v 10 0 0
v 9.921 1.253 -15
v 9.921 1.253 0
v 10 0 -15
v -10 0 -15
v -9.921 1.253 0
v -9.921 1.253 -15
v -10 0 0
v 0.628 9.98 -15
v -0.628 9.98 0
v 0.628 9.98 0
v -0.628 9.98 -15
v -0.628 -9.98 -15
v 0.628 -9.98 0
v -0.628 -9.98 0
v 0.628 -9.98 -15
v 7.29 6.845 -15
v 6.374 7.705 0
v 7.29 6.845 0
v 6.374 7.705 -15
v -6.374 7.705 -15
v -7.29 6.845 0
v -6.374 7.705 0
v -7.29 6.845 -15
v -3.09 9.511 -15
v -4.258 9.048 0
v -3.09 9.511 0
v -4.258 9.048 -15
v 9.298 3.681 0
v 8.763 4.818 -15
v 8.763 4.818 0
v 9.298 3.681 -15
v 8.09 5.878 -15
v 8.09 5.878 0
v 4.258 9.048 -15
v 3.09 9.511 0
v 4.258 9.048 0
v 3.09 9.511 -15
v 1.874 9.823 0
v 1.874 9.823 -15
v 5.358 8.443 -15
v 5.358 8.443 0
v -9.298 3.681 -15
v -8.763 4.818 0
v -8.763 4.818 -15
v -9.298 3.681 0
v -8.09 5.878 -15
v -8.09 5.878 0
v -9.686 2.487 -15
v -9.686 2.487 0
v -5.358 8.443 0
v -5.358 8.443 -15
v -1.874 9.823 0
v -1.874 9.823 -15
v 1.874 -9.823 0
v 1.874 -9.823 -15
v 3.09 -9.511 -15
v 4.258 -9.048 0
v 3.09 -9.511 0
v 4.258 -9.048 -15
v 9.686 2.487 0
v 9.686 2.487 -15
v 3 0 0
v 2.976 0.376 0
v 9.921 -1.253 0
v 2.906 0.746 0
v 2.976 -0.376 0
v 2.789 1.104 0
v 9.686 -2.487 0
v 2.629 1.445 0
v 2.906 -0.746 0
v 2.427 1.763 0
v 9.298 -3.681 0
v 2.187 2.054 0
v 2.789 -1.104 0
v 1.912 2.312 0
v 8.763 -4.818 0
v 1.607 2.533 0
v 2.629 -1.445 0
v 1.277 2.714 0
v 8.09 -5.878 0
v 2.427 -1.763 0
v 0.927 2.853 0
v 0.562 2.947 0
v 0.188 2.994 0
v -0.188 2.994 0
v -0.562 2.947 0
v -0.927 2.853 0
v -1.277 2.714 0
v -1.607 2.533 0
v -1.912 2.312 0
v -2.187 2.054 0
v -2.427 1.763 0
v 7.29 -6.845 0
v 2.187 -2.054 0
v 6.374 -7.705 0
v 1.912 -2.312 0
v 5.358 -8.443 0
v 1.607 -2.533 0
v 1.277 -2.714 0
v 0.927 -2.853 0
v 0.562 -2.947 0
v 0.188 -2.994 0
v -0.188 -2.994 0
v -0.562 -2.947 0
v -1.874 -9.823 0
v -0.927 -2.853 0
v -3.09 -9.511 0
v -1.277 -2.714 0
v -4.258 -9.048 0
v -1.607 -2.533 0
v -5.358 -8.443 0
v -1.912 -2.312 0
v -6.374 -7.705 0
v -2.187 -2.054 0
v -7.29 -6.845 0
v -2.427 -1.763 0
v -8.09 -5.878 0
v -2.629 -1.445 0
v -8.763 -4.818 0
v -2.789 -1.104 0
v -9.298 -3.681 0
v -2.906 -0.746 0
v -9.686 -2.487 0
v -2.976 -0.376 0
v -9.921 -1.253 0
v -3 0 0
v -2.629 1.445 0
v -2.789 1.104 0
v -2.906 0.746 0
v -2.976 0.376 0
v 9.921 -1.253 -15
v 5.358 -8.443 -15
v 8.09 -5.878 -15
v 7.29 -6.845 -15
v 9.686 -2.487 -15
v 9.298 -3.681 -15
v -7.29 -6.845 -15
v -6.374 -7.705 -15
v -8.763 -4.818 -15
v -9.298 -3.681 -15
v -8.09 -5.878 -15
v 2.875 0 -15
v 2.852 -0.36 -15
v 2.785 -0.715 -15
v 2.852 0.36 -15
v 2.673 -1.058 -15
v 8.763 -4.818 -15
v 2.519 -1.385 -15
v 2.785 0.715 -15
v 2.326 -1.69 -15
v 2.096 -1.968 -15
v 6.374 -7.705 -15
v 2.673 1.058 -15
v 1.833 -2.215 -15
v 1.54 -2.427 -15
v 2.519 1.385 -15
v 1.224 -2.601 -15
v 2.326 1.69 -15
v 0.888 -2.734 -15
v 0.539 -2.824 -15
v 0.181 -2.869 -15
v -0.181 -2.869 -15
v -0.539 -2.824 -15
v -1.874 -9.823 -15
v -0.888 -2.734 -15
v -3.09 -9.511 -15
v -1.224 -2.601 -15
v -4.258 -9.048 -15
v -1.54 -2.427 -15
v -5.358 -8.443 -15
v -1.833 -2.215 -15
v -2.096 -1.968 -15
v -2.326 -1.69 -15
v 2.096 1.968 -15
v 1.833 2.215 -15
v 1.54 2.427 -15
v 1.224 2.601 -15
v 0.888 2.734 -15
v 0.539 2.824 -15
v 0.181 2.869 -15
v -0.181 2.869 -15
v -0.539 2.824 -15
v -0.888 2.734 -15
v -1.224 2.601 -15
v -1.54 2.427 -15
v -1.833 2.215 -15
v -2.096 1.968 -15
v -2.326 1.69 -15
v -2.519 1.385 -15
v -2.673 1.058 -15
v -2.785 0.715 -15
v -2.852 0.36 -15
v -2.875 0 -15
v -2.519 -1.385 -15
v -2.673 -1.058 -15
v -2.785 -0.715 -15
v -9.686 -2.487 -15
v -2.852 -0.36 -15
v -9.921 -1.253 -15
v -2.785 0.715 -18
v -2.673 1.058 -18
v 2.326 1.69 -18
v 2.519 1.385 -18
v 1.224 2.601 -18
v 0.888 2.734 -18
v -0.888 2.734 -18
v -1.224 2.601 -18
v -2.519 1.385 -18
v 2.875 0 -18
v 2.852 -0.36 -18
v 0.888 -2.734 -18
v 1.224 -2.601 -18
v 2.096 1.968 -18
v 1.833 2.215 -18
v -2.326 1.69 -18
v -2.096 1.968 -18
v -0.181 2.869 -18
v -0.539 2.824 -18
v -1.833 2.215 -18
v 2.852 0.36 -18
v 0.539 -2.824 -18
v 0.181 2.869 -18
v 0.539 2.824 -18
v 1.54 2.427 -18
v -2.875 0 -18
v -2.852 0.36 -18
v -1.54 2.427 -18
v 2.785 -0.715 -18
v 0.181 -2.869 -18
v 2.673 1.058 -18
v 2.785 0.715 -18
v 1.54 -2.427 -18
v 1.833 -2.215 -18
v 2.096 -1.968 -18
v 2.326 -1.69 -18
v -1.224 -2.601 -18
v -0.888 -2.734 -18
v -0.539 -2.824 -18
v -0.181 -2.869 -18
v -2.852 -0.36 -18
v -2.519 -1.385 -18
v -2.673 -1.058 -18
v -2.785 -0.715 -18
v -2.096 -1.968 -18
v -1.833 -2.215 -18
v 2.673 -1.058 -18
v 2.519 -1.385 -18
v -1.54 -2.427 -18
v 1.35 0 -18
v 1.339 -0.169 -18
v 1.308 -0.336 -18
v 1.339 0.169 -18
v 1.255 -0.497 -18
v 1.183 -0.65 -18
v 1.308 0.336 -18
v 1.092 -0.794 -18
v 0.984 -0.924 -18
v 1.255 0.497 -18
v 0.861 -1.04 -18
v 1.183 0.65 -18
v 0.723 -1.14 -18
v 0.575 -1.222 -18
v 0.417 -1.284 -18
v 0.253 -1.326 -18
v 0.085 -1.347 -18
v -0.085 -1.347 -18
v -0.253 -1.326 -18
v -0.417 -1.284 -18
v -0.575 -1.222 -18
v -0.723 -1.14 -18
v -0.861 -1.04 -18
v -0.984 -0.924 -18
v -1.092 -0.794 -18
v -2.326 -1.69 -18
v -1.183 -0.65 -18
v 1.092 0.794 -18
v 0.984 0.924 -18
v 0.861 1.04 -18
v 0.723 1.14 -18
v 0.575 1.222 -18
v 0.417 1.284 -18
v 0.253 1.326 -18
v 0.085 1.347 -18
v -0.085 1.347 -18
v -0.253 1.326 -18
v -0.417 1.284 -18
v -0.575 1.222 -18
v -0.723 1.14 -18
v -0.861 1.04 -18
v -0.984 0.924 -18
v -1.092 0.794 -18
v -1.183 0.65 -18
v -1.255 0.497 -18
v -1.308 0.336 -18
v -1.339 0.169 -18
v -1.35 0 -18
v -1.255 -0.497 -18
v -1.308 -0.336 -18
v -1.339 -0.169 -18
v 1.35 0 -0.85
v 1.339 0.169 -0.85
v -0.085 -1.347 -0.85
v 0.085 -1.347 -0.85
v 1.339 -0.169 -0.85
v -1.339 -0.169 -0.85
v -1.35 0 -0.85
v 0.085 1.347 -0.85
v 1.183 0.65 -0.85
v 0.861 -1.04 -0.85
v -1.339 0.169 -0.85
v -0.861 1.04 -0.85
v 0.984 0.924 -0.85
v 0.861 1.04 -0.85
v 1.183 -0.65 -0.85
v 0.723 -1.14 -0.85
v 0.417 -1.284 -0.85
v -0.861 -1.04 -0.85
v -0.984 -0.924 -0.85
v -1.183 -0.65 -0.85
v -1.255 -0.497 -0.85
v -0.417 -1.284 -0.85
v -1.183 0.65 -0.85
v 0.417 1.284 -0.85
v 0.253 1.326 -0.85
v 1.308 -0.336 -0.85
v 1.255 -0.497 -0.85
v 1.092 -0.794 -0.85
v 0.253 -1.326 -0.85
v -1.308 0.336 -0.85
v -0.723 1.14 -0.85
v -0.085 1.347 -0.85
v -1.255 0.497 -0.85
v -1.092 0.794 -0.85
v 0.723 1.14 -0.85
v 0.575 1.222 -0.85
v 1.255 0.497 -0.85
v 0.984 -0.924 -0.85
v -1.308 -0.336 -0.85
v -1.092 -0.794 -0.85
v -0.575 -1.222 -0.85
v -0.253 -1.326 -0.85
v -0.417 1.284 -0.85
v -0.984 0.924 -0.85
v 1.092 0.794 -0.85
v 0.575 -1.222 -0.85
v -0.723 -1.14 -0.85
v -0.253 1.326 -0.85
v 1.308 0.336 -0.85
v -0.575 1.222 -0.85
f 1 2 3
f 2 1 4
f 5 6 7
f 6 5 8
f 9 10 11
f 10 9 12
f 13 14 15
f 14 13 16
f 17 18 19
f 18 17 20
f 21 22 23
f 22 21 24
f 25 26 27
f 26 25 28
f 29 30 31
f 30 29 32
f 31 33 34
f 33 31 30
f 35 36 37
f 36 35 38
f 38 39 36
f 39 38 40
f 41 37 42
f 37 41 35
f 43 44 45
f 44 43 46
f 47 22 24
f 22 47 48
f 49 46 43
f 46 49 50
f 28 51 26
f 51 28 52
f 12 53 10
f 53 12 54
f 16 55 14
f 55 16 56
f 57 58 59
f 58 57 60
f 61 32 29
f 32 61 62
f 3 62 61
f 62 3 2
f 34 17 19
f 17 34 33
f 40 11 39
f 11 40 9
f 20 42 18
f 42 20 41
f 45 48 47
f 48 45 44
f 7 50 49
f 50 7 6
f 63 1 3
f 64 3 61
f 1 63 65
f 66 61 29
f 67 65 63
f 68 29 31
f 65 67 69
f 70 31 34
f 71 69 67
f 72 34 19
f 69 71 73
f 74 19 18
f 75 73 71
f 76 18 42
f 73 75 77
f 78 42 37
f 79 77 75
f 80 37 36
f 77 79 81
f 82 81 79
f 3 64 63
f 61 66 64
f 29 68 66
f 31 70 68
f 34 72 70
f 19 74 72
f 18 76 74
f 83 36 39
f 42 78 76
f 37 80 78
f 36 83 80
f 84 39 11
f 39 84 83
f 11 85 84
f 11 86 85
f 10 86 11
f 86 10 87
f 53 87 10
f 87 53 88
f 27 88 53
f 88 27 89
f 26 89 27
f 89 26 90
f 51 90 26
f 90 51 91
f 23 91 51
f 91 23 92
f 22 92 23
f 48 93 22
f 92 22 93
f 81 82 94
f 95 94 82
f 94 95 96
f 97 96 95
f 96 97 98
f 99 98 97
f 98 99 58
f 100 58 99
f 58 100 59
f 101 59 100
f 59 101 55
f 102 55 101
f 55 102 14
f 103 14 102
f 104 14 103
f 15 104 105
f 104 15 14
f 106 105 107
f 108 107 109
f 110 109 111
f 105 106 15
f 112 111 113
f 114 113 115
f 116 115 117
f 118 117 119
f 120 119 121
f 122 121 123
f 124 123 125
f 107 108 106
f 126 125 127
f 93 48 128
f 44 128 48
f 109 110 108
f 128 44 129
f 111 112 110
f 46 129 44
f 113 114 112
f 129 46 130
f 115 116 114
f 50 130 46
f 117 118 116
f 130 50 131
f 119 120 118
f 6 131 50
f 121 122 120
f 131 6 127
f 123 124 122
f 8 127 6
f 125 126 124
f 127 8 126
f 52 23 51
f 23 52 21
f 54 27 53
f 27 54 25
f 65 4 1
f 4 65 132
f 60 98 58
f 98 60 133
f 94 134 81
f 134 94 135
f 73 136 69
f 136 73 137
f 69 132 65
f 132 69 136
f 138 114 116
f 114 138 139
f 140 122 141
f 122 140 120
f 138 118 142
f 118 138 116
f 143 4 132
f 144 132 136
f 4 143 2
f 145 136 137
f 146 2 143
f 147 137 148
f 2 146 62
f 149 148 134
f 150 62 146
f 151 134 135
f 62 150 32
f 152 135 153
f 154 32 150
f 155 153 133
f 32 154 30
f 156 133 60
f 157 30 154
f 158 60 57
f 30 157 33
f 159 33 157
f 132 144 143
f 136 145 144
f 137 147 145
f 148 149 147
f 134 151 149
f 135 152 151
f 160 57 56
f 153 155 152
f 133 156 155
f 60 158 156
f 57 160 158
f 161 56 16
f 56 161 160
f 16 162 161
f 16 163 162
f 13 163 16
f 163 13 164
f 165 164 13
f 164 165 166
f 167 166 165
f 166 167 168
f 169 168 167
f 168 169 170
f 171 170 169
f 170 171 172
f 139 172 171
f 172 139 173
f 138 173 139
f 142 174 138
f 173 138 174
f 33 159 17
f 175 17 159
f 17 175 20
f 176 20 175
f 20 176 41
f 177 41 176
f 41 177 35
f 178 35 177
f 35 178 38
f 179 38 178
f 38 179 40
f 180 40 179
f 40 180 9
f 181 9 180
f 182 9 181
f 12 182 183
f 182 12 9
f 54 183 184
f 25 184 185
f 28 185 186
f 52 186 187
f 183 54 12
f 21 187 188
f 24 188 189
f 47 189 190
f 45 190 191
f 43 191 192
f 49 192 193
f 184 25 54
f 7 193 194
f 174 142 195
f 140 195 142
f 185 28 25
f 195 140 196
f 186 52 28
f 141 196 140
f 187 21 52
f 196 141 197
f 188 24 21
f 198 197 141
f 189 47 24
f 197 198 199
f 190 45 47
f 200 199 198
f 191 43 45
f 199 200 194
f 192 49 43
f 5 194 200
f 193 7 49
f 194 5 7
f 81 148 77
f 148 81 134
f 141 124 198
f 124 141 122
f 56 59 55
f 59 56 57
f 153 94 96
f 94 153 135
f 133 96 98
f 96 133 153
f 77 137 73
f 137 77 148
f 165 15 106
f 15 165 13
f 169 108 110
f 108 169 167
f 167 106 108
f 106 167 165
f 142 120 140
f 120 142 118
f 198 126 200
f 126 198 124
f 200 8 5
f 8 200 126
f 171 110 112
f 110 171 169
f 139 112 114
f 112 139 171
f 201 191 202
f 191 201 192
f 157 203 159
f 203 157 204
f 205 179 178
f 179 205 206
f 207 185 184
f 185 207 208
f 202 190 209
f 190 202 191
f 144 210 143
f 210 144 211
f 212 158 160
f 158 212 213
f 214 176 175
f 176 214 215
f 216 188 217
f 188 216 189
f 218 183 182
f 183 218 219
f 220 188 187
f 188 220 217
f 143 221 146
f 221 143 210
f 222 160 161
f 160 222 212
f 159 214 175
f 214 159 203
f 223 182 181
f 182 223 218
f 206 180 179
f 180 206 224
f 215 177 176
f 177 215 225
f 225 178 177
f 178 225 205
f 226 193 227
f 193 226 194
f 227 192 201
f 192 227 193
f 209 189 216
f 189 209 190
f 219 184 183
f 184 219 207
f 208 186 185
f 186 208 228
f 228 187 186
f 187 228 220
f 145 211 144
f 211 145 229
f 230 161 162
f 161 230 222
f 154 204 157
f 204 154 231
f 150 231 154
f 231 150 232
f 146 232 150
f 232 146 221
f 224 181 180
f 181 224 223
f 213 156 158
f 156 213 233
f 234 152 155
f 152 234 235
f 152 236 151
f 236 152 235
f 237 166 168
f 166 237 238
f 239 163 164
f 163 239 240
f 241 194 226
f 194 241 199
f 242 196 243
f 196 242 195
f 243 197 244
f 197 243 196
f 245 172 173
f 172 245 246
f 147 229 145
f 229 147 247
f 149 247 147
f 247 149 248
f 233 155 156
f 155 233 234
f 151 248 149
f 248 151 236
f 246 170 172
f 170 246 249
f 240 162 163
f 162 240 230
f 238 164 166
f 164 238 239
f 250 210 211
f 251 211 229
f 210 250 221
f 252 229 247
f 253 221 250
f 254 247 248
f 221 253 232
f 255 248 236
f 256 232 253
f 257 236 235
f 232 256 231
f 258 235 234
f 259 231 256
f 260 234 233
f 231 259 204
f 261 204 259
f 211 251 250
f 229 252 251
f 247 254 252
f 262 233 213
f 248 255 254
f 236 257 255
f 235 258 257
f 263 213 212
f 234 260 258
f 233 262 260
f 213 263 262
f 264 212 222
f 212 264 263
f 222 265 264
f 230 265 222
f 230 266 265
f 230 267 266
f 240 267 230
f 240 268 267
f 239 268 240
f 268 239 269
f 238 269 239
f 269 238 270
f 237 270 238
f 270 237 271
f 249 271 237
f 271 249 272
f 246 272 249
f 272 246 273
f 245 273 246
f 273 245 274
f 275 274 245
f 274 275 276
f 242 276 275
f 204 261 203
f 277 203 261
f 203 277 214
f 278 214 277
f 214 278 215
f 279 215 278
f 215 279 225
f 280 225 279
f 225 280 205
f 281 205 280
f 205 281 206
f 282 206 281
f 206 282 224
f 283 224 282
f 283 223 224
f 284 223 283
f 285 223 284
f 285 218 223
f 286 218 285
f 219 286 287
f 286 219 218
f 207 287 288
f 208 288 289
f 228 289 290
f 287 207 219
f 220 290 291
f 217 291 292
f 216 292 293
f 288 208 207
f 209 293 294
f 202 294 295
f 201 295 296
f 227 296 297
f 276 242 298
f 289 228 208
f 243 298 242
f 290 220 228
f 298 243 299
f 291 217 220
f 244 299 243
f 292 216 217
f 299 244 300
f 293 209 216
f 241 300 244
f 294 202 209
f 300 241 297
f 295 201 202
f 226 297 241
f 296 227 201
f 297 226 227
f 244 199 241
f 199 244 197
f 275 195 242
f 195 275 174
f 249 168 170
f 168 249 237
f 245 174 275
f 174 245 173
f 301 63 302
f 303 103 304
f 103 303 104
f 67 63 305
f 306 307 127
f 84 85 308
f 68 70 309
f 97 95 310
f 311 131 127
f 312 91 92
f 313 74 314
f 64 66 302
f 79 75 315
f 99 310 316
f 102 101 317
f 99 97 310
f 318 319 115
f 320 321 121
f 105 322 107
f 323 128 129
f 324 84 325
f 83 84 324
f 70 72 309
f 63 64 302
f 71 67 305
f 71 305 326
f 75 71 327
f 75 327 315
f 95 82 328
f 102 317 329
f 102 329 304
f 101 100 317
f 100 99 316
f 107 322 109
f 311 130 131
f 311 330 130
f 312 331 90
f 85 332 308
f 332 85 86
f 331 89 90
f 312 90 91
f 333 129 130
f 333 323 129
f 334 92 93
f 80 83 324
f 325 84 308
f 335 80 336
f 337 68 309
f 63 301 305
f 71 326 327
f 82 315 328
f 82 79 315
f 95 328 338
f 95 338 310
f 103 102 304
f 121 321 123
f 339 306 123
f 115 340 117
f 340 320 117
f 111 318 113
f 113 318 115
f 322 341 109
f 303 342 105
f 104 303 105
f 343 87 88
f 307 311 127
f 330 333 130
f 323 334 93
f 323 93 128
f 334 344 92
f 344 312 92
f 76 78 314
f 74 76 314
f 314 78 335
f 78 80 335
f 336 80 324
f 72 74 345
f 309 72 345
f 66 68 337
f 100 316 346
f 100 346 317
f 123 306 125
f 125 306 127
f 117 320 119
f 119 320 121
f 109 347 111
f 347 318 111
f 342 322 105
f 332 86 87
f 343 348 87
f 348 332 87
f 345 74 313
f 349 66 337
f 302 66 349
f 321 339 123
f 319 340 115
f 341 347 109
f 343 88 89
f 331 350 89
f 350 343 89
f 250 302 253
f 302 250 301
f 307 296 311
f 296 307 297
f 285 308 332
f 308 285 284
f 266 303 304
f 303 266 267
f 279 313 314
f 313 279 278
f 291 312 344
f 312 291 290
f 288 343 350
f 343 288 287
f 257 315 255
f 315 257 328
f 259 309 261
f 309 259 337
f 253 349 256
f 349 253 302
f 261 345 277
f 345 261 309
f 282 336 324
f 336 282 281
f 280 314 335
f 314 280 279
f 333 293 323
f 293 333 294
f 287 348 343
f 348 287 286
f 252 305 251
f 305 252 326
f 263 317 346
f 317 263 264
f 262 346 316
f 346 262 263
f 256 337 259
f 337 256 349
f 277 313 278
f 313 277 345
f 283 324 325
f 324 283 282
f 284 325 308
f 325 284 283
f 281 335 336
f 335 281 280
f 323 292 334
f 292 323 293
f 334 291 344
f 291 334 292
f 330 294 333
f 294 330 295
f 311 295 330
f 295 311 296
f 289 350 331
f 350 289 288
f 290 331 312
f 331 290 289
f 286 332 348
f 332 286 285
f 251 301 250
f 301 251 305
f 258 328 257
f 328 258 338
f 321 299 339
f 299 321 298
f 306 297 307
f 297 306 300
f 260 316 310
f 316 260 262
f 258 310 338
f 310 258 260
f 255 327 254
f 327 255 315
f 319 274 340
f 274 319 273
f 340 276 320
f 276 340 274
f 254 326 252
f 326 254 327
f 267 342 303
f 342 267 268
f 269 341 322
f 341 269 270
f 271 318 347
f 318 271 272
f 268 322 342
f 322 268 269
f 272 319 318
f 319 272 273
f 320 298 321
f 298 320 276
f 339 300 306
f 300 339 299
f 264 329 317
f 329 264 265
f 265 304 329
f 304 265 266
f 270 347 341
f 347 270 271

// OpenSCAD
$fn = 50;

difference() {
	union() {
		translate(v = [0, 0, -15.0]) {
			cylinder(h = 15, r = 10.0);
		}
		#translate(v = [0, 0, -18.0]) {
			cylinder(h = 18, r = 2.875);
		}
	}
	union() {
		translate(v = [0, 0, 0]) {
			rotate(a = [0, 0, 0]) {
				difference() {
					union() {
						translate(v = [0, 0, -18.0]) {
							cylinder(h = 18, r = 1.0);
						}
						translate(v = [0, 0, -0.85]) {
							cylinder(h = 0.85, r1 = 1.35, r2 = 3.0);
						}
						translate(v = [0, 0, -18.0]) {
							cylinder(h = 18, r = 1.35);
						}
						translate(v = [0, 0, -18.0]) {
							cylinder(h = 18, r = 1.0);
						}
					}
					union();
				}
			}
		}
	}
}
